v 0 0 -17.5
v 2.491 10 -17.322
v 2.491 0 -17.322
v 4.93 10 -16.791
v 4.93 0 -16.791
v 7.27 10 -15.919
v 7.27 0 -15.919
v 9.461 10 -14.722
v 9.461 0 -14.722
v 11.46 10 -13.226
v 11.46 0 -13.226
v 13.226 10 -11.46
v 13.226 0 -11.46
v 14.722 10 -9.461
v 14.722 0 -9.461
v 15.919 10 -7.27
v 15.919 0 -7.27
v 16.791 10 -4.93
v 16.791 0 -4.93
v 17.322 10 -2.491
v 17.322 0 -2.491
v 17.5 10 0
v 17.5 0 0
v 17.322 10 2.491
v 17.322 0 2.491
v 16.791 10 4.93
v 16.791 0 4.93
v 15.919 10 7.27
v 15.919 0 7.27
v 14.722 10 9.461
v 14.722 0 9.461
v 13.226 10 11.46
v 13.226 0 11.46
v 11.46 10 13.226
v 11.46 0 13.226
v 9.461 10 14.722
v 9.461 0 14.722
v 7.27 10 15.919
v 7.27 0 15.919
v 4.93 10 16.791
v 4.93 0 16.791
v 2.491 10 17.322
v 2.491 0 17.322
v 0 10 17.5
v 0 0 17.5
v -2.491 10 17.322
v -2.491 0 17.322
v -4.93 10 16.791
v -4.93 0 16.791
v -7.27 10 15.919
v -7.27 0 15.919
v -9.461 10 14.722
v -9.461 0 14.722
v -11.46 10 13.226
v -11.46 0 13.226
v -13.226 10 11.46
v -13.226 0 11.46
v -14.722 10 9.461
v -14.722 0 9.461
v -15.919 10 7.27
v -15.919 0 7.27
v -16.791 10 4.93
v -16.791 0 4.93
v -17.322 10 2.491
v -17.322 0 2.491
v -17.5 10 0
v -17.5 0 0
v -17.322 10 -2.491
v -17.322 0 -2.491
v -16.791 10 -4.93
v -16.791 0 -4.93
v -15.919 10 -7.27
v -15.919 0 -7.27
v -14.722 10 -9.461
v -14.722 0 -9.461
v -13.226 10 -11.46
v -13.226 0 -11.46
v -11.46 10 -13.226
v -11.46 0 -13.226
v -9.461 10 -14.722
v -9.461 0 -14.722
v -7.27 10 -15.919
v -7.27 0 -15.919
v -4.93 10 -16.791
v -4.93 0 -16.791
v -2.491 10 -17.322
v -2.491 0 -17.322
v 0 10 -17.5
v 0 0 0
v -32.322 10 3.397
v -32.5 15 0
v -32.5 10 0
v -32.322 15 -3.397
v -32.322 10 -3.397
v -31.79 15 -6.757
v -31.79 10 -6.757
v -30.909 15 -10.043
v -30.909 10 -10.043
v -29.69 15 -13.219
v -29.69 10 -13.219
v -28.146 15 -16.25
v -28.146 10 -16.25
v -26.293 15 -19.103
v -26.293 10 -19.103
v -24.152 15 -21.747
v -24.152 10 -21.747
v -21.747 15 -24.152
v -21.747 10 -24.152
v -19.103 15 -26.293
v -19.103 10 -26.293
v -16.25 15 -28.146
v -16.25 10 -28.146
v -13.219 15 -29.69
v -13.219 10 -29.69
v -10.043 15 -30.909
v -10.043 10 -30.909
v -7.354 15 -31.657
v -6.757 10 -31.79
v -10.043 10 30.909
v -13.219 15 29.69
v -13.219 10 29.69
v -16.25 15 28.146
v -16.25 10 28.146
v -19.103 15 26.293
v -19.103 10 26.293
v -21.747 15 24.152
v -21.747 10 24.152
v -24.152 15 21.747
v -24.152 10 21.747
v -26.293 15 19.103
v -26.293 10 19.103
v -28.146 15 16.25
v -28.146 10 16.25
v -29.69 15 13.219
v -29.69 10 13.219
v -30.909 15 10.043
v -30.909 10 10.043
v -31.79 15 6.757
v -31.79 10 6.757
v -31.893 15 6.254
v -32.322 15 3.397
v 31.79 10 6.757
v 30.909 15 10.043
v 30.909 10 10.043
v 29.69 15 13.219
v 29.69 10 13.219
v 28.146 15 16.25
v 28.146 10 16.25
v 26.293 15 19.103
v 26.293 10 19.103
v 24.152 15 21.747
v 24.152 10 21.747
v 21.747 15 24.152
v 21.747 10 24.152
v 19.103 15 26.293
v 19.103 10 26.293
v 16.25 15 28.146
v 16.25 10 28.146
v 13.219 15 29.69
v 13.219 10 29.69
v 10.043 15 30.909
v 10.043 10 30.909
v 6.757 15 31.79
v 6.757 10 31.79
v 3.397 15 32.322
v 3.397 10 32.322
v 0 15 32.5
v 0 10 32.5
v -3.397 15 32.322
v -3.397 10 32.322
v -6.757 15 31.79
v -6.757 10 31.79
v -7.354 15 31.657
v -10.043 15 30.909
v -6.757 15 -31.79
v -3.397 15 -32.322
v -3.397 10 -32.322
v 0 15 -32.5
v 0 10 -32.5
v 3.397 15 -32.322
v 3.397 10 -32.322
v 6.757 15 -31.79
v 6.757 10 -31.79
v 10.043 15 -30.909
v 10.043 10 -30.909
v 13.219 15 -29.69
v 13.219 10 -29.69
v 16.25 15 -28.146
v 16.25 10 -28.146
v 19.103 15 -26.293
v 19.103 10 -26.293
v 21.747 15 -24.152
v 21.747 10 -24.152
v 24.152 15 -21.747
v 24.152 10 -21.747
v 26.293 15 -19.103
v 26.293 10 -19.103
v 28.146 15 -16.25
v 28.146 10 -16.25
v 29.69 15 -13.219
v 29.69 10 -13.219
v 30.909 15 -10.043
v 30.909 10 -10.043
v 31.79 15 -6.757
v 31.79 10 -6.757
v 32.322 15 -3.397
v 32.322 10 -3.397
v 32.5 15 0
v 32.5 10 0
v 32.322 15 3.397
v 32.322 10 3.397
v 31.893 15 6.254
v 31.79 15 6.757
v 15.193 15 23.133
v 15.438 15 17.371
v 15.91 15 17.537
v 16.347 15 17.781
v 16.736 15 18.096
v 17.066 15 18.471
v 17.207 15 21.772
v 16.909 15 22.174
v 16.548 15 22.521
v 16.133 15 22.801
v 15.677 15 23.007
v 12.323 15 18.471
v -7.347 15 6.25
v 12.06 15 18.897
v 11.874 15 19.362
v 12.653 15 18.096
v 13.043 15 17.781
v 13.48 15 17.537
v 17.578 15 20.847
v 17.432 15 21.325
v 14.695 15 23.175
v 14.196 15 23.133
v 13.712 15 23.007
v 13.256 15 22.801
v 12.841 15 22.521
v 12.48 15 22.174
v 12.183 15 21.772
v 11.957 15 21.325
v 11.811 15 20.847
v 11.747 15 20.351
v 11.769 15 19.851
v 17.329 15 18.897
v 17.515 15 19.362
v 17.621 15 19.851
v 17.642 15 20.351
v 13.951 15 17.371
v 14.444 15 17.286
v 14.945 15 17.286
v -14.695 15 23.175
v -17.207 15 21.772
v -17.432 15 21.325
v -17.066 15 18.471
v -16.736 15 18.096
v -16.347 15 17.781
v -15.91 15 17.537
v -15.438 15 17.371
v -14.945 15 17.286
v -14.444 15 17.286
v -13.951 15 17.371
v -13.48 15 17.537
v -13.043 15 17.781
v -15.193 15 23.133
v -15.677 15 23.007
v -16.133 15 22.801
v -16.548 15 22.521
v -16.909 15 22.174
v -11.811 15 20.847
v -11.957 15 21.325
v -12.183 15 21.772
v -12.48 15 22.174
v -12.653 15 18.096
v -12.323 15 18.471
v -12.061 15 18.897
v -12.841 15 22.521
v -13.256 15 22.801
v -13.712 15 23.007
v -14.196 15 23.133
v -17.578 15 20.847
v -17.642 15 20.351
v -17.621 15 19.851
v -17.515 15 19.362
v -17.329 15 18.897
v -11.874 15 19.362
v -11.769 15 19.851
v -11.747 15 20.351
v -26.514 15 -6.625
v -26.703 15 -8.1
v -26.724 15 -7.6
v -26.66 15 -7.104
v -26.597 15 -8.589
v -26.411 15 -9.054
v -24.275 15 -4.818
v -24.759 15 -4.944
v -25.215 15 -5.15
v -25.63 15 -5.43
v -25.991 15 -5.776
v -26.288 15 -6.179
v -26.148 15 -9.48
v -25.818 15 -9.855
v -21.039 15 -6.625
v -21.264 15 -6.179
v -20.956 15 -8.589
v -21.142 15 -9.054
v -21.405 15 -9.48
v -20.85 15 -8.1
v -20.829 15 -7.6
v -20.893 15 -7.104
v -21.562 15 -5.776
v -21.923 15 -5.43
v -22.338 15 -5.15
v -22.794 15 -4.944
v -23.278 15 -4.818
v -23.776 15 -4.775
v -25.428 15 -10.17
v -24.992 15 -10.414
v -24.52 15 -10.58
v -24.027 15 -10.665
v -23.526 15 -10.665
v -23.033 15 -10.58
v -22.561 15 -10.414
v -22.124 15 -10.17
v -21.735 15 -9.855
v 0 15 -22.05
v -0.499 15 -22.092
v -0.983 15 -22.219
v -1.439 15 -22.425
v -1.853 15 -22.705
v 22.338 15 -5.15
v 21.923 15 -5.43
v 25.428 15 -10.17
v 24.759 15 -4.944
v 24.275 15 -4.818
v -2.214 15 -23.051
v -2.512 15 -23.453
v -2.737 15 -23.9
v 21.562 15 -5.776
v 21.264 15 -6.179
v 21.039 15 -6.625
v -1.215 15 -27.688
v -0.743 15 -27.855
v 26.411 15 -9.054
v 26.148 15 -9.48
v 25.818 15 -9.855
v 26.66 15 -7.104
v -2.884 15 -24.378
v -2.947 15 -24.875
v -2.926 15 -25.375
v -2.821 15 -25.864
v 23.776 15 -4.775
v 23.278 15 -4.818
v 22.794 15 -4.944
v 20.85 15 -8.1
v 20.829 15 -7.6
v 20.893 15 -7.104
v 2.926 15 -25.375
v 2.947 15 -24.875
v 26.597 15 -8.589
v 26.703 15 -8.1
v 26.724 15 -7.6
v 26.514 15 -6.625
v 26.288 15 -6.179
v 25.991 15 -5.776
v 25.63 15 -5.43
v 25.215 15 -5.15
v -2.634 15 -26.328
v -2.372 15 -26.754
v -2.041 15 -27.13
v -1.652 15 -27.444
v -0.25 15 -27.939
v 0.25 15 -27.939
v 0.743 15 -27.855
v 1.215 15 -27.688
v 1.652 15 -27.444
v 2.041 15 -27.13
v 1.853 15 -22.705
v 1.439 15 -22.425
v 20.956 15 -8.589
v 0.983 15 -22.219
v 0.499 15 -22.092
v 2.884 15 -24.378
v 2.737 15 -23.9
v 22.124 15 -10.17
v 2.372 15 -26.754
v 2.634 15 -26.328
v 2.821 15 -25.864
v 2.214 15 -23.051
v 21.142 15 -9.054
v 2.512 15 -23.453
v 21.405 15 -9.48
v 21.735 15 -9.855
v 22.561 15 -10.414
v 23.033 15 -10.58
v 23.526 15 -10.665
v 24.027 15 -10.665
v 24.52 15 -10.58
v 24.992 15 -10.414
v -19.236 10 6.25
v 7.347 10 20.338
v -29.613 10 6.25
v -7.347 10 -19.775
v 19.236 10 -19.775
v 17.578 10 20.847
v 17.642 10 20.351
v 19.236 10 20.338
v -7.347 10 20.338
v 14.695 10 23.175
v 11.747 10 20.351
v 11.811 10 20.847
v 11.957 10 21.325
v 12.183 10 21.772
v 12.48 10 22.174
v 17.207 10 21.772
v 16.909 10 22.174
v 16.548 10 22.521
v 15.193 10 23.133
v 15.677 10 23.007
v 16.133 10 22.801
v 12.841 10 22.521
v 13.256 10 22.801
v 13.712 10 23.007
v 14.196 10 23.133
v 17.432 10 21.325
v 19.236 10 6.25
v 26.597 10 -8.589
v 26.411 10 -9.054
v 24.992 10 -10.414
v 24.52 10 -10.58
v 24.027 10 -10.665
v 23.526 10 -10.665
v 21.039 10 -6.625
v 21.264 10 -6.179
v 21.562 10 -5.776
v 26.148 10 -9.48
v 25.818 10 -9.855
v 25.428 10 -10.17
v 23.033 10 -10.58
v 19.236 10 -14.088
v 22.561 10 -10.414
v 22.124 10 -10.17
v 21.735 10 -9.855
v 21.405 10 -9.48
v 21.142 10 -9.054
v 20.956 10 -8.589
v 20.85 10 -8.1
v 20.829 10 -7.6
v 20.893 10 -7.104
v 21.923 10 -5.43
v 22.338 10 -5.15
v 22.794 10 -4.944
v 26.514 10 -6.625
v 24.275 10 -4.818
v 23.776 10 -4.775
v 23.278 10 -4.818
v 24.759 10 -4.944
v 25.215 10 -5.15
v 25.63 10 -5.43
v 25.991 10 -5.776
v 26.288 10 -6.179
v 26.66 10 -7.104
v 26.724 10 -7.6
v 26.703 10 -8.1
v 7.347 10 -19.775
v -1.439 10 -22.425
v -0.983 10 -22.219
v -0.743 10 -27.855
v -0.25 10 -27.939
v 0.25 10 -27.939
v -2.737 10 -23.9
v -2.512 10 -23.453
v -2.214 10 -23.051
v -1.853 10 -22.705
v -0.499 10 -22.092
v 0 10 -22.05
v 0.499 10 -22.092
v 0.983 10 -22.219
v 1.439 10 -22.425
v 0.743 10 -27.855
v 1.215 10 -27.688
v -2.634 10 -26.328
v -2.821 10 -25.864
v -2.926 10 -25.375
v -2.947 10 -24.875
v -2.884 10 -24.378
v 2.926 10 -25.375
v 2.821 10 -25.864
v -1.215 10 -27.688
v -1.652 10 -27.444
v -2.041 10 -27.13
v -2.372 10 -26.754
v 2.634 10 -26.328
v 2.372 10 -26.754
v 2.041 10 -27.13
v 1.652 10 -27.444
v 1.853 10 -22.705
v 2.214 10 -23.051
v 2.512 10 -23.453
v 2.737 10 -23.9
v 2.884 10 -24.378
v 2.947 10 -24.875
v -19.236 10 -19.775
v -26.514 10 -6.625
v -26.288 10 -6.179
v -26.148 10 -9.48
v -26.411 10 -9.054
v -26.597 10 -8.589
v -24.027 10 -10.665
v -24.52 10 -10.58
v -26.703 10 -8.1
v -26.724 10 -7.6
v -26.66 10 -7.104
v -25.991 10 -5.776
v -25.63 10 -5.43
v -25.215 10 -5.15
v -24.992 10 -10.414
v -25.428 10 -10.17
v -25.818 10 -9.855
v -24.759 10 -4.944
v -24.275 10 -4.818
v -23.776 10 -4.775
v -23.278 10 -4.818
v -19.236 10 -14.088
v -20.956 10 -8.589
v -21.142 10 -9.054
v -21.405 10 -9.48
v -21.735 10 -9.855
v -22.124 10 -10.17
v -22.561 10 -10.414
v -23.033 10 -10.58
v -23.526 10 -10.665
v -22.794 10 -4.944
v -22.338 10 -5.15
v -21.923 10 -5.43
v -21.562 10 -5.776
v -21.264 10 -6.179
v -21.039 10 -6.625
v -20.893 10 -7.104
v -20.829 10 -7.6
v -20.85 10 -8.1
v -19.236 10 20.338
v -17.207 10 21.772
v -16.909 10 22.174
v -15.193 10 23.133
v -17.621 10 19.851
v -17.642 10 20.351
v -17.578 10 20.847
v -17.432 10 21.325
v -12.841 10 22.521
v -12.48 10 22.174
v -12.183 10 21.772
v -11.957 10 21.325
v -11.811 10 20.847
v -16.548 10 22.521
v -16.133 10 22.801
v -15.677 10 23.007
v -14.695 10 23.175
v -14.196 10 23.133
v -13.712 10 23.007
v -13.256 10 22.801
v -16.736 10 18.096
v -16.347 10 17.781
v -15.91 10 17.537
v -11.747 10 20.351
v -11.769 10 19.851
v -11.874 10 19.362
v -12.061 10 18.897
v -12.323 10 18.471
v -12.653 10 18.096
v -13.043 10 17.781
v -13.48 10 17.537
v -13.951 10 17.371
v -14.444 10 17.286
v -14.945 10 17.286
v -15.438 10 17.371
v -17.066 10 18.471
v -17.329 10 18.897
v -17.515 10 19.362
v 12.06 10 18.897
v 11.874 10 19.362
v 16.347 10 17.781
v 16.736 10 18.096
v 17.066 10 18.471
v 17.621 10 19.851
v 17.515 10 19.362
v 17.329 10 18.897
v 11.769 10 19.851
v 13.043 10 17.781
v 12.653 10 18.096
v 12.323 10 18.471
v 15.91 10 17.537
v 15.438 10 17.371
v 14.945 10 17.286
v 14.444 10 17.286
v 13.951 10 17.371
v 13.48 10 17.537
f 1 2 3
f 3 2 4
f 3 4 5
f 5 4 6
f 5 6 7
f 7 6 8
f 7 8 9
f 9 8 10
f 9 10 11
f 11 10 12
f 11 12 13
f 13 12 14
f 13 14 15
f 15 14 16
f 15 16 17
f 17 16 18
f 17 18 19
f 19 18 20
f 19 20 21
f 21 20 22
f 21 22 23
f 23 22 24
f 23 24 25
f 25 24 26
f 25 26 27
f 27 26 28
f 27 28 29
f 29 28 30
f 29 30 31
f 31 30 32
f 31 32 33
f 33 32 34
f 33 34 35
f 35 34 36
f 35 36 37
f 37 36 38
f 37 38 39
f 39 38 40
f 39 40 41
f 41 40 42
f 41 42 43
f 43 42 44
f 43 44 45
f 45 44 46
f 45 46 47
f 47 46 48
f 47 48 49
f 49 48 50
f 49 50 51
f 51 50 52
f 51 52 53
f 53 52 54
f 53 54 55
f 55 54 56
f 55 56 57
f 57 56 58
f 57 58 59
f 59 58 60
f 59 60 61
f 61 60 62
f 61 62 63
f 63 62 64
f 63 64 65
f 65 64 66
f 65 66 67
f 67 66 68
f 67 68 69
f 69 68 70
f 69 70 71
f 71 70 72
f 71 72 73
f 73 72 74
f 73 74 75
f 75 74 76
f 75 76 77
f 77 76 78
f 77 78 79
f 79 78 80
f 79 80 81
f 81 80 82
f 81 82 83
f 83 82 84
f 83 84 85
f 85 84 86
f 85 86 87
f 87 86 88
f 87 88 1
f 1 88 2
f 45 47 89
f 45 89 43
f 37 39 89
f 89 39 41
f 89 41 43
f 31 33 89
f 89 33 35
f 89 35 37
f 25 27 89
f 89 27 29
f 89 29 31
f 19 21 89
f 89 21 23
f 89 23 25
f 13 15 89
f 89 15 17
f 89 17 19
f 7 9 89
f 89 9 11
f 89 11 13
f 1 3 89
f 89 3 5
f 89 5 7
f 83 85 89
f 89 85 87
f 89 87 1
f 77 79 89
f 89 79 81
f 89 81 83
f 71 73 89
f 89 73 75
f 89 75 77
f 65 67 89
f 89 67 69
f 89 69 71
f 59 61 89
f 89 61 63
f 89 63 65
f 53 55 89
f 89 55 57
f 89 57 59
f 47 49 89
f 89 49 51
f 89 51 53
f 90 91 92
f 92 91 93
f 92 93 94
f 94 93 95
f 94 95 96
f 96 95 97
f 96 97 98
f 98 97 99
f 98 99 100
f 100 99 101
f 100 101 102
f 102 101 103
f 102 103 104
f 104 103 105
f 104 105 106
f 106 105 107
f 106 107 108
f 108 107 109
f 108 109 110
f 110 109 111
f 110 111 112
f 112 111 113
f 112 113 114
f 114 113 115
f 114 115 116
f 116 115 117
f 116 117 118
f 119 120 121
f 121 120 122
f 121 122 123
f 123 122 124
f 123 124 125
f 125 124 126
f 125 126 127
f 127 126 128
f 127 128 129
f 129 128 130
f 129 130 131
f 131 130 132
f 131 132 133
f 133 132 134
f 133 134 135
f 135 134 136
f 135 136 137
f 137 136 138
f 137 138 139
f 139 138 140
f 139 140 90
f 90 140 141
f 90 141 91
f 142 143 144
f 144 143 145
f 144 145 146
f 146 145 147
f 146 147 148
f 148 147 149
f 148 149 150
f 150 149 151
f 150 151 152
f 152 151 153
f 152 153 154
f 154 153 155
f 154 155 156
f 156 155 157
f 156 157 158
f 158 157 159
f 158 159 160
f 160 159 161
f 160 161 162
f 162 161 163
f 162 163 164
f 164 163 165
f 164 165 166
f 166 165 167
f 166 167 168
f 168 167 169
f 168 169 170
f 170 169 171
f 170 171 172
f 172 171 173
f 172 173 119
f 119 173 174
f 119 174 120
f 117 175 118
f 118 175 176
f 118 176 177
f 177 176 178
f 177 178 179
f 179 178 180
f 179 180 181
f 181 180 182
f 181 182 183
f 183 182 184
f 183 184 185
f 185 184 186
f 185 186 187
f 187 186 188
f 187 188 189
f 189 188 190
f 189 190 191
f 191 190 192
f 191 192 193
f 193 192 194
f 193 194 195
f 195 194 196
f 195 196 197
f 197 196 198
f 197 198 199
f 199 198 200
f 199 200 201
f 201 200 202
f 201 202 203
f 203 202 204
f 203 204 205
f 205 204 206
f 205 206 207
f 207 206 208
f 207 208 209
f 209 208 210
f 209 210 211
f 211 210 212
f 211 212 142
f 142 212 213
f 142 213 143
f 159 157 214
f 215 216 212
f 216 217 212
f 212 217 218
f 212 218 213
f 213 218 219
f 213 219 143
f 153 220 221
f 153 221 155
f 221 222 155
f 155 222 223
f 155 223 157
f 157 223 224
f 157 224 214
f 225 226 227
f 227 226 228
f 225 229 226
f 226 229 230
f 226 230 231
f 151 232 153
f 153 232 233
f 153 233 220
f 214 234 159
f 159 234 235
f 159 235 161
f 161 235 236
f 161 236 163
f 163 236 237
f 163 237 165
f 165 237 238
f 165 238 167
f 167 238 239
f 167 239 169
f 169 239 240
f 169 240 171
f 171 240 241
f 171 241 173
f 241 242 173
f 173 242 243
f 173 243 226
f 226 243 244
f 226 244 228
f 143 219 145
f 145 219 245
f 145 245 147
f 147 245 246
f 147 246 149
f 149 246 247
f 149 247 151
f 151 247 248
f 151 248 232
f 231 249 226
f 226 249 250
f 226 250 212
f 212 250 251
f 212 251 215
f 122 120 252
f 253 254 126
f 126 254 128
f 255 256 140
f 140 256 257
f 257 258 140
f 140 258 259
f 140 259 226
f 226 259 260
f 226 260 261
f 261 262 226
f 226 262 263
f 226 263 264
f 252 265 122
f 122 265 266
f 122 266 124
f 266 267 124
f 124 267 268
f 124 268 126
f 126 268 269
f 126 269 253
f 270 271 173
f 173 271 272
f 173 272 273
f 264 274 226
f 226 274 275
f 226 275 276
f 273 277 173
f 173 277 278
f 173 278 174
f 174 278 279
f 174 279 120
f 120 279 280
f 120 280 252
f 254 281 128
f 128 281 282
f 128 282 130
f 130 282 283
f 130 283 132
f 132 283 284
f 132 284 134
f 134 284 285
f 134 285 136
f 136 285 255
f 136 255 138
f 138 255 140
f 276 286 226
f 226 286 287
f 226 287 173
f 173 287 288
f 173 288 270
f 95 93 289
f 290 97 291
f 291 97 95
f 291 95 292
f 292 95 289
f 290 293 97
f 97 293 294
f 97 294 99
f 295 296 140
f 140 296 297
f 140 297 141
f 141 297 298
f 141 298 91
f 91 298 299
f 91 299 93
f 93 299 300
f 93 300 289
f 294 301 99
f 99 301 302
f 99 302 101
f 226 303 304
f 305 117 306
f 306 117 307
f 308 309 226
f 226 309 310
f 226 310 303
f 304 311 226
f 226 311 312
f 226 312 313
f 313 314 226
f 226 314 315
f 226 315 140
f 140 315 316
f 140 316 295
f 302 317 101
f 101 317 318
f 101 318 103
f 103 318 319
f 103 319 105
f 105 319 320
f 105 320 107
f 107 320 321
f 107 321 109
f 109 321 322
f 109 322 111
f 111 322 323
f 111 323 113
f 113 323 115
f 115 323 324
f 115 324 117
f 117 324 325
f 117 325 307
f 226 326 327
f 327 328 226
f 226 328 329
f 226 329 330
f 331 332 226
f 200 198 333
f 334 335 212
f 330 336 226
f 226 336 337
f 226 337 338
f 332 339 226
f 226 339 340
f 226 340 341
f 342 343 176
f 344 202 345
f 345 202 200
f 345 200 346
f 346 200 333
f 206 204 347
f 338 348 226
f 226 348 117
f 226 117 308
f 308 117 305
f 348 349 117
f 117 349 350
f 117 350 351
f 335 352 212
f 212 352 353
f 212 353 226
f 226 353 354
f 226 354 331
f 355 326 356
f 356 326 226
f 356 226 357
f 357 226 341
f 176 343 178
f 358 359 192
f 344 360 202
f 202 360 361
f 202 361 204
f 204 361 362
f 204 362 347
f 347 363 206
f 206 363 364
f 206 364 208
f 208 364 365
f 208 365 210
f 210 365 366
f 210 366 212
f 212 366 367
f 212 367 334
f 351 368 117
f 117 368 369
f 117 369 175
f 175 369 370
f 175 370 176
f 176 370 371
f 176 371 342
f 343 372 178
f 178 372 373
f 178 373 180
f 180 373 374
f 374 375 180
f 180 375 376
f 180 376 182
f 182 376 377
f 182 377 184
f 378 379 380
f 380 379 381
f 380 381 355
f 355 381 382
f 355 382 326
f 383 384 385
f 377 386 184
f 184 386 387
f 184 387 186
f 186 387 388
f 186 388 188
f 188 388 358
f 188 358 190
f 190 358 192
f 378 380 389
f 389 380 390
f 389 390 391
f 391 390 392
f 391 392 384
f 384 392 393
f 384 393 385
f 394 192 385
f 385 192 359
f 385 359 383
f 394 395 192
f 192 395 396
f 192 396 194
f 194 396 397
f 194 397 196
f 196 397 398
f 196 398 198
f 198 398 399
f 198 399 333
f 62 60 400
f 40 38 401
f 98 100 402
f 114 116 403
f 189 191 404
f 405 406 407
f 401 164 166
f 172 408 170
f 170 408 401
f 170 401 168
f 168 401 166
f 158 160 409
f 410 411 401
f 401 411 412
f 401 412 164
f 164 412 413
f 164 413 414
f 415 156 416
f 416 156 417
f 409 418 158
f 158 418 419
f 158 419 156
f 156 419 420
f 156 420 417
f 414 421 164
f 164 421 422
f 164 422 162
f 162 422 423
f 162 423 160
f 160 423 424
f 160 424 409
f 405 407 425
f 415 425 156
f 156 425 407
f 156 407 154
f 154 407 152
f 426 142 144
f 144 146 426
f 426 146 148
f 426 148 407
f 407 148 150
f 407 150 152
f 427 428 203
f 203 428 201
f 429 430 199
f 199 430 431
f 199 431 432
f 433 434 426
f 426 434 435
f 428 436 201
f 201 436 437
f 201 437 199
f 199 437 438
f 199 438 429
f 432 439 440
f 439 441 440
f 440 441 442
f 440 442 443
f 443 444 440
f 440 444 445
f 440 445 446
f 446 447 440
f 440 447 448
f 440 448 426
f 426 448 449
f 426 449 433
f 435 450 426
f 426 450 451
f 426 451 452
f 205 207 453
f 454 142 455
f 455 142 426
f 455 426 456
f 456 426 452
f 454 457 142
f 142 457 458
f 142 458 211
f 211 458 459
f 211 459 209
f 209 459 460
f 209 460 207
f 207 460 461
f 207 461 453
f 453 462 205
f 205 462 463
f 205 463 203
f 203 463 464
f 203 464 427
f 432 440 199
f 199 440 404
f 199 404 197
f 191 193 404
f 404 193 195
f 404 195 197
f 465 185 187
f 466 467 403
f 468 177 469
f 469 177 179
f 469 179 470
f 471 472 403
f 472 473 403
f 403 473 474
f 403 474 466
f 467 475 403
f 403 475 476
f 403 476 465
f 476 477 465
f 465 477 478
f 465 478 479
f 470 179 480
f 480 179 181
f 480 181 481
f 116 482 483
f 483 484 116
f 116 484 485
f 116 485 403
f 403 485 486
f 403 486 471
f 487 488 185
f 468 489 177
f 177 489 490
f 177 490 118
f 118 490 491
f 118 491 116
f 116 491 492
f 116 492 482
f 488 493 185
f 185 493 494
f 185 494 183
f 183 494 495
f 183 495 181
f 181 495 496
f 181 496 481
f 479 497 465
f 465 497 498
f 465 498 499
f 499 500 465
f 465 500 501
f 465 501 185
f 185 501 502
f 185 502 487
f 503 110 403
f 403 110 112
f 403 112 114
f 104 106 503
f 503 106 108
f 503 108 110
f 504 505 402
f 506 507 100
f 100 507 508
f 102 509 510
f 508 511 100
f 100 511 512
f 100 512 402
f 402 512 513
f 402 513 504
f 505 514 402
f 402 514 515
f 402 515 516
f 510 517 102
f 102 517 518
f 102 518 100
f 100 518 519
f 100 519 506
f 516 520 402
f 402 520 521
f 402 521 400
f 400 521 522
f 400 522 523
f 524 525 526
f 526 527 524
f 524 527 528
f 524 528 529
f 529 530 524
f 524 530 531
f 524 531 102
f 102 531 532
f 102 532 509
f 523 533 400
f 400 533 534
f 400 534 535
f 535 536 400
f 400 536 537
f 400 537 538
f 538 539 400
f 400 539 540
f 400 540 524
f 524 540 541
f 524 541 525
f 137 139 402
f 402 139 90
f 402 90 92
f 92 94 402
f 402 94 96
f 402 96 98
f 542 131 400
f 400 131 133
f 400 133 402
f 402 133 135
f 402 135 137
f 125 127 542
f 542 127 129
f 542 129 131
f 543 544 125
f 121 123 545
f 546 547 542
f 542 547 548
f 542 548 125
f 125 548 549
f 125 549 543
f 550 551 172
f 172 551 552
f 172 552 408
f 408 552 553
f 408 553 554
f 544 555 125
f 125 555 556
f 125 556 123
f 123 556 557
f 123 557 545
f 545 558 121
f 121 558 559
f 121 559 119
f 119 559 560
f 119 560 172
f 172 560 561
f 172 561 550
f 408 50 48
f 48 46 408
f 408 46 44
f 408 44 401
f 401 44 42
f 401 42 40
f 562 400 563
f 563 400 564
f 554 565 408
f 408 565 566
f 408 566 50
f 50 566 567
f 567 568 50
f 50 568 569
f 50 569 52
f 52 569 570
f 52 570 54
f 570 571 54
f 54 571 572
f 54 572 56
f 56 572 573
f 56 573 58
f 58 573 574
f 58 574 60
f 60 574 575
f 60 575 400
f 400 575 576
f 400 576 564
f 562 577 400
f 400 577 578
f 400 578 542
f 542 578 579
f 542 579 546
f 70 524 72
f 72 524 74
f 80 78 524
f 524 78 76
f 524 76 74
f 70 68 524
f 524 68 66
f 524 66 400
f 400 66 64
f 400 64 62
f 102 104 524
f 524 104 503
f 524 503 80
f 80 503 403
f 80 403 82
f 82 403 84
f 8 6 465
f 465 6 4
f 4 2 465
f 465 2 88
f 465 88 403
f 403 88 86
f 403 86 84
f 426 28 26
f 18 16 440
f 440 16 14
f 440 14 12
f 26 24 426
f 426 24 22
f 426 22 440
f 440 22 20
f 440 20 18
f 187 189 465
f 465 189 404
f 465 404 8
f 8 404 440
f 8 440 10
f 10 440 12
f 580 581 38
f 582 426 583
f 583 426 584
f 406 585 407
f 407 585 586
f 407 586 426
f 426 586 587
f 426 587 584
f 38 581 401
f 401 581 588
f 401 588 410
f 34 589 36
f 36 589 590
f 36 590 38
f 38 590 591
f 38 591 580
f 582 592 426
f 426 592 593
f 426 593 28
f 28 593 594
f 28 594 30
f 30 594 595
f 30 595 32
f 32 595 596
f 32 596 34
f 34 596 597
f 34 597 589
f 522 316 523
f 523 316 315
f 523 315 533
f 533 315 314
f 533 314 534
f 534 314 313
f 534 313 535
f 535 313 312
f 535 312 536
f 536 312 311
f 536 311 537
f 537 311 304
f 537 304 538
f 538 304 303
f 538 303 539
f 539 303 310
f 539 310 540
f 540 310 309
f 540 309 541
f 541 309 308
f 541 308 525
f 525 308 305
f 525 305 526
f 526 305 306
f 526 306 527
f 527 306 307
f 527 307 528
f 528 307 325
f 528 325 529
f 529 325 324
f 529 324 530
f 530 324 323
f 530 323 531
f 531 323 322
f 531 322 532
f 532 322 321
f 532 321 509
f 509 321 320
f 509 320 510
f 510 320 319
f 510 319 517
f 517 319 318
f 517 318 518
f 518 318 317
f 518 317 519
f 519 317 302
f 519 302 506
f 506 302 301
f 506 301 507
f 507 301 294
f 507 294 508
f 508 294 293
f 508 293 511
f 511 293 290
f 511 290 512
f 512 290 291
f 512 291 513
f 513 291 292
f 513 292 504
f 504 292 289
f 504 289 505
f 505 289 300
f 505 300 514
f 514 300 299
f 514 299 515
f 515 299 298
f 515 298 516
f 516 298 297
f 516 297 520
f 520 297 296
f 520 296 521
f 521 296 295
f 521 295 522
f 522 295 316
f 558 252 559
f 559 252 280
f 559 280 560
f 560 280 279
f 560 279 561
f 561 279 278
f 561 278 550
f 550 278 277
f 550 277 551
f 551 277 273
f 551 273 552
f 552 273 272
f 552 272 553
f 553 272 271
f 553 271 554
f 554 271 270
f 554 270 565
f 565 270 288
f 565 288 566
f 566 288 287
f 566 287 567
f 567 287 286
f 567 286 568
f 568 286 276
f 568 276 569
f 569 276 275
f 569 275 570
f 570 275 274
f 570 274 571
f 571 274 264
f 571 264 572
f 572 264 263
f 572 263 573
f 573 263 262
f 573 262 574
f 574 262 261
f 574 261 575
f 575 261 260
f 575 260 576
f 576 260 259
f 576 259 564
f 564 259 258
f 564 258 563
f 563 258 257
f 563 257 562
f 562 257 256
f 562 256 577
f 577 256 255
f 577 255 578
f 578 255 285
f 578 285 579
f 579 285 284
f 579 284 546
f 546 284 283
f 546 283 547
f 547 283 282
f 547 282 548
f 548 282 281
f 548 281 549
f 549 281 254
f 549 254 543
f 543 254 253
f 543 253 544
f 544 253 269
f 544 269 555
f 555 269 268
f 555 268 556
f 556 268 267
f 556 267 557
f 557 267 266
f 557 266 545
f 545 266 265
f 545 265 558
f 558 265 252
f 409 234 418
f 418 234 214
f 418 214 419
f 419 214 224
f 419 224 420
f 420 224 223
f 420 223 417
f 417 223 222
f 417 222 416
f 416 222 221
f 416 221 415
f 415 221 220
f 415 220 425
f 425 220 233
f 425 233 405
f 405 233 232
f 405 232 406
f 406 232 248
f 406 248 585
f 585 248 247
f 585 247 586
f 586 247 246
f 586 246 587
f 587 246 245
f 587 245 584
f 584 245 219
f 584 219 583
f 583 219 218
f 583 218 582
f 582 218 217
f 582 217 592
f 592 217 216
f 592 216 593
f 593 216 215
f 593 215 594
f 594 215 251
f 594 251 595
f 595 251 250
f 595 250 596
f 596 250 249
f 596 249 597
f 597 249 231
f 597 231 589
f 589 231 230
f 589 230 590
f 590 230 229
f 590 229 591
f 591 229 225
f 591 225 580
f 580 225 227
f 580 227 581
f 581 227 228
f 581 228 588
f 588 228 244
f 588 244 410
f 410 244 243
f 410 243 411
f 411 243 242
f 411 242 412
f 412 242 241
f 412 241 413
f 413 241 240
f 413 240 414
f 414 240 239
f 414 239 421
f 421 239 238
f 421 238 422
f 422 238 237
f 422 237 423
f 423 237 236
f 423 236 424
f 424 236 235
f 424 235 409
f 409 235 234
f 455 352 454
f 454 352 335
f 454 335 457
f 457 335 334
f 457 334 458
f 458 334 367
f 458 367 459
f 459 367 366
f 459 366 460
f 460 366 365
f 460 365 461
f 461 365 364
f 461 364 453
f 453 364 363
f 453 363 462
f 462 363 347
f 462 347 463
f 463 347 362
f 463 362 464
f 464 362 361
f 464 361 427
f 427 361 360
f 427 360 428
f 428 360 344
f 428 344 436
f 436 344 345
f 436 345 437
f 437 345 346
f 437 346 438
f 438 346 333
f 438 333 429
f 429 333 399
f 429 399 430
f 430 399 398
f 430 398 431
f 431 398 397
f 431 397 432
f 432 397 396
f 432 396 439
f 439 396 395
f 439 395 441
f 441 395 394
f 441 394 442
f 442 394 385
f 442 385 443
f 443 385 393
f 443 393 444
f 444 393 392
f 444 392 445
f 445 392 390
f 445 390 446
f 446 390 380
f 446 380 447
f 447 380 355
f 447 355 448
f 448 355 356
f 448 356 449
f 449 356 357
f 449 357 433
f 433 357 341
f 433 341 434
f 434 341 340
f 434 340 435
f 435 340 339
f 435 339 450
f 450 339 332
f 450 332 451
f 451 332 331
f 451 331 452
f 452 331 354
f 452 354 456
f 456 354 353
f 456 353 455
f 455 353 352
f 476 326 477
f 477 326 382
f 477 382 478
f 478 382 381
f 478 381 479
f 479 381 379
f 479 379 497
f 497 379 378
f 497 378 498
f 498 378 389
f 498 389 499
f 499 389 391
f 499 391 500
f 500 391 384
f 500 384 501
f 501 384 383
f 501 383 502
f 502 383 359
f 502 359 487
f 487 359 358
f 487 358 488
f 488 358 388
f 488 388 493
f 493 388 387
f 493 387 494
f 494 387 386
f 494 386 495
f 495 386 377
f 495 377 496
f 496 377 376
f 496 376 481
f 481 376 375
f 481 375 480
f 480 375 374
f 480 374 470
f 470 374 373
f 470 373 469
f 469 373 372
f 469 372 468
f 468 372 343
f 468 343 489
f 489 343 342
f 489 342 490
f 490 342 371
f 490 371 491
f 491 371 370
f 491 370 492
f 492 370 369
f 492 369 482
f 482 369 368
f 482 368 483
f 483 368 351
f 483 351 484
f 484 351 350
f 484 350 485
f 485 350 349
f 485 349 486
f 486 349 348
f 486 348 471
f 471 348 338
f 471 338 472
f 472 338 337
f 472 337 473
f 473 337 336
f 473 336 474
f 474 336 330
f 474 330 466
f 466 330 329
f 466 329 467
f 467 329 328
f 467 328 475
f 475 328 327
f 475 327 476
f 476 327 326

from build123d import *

# Parameters (mm, degrees)
SKETCH1_R           = 17.5
BOSS_EXTRUDE1_DEPTH = 10
SKETCH2_R           = 32.5
BOSS_EXTRUDE2_DEPTH = 5
SKETCH3_R           = 2.95
CUT_EXTRUDE1_DEPTH  = 7


with BuildPart() as part:
    # Sketch1 → Boss-Extrude1 (new body)
    with BuildSketch(Plane(origin=(0, 0, 0), x_dir=(1, 0, 0), z_dir=(0, 1, 0))):
        Circle(SKETCH1_R)
    extrude(amount=BOSS_EXTRUDE1_DEPTH)

    # Sketch2 → Boss-Extrude2 (add)
    with BuildSketch(Plane(origin=(0, 10, 0), x_dir=(1, 0, 0), z_dir=(0, 1, 0))):
        Circle(SKETCH2_R)
    extrude(amount=BOSS_EXTRUDE2_DEPTH)

    # Sketch3 → Cut-Extrude1 (cut)
    with BuildSketch(Plane(origin=(0, 15, 0), x_dir=(1, 0, 0), z_dir=(0, 1, 0))):
        with Locations((0, 25)):
            Circle(SKETCH3_R)
        with Locations((23.776412907, 7.725424859)):
            Circle(SKETCH3_R)
        with Locations((14.694631307, -20.225424859)):
            Circle(SKETCH3_R)
        with Locations((-14.694631307, -20.225424859)):
            Circle(SKETCH3_R)
        with Locations((-23.776412907, 7.725424859)):
            Circle(SKETCH3_R)
    extrude(amount=-CUT_EXTRUDE1_DEPTH, mode=Mode.SUBTRACT)


solid = part.part
